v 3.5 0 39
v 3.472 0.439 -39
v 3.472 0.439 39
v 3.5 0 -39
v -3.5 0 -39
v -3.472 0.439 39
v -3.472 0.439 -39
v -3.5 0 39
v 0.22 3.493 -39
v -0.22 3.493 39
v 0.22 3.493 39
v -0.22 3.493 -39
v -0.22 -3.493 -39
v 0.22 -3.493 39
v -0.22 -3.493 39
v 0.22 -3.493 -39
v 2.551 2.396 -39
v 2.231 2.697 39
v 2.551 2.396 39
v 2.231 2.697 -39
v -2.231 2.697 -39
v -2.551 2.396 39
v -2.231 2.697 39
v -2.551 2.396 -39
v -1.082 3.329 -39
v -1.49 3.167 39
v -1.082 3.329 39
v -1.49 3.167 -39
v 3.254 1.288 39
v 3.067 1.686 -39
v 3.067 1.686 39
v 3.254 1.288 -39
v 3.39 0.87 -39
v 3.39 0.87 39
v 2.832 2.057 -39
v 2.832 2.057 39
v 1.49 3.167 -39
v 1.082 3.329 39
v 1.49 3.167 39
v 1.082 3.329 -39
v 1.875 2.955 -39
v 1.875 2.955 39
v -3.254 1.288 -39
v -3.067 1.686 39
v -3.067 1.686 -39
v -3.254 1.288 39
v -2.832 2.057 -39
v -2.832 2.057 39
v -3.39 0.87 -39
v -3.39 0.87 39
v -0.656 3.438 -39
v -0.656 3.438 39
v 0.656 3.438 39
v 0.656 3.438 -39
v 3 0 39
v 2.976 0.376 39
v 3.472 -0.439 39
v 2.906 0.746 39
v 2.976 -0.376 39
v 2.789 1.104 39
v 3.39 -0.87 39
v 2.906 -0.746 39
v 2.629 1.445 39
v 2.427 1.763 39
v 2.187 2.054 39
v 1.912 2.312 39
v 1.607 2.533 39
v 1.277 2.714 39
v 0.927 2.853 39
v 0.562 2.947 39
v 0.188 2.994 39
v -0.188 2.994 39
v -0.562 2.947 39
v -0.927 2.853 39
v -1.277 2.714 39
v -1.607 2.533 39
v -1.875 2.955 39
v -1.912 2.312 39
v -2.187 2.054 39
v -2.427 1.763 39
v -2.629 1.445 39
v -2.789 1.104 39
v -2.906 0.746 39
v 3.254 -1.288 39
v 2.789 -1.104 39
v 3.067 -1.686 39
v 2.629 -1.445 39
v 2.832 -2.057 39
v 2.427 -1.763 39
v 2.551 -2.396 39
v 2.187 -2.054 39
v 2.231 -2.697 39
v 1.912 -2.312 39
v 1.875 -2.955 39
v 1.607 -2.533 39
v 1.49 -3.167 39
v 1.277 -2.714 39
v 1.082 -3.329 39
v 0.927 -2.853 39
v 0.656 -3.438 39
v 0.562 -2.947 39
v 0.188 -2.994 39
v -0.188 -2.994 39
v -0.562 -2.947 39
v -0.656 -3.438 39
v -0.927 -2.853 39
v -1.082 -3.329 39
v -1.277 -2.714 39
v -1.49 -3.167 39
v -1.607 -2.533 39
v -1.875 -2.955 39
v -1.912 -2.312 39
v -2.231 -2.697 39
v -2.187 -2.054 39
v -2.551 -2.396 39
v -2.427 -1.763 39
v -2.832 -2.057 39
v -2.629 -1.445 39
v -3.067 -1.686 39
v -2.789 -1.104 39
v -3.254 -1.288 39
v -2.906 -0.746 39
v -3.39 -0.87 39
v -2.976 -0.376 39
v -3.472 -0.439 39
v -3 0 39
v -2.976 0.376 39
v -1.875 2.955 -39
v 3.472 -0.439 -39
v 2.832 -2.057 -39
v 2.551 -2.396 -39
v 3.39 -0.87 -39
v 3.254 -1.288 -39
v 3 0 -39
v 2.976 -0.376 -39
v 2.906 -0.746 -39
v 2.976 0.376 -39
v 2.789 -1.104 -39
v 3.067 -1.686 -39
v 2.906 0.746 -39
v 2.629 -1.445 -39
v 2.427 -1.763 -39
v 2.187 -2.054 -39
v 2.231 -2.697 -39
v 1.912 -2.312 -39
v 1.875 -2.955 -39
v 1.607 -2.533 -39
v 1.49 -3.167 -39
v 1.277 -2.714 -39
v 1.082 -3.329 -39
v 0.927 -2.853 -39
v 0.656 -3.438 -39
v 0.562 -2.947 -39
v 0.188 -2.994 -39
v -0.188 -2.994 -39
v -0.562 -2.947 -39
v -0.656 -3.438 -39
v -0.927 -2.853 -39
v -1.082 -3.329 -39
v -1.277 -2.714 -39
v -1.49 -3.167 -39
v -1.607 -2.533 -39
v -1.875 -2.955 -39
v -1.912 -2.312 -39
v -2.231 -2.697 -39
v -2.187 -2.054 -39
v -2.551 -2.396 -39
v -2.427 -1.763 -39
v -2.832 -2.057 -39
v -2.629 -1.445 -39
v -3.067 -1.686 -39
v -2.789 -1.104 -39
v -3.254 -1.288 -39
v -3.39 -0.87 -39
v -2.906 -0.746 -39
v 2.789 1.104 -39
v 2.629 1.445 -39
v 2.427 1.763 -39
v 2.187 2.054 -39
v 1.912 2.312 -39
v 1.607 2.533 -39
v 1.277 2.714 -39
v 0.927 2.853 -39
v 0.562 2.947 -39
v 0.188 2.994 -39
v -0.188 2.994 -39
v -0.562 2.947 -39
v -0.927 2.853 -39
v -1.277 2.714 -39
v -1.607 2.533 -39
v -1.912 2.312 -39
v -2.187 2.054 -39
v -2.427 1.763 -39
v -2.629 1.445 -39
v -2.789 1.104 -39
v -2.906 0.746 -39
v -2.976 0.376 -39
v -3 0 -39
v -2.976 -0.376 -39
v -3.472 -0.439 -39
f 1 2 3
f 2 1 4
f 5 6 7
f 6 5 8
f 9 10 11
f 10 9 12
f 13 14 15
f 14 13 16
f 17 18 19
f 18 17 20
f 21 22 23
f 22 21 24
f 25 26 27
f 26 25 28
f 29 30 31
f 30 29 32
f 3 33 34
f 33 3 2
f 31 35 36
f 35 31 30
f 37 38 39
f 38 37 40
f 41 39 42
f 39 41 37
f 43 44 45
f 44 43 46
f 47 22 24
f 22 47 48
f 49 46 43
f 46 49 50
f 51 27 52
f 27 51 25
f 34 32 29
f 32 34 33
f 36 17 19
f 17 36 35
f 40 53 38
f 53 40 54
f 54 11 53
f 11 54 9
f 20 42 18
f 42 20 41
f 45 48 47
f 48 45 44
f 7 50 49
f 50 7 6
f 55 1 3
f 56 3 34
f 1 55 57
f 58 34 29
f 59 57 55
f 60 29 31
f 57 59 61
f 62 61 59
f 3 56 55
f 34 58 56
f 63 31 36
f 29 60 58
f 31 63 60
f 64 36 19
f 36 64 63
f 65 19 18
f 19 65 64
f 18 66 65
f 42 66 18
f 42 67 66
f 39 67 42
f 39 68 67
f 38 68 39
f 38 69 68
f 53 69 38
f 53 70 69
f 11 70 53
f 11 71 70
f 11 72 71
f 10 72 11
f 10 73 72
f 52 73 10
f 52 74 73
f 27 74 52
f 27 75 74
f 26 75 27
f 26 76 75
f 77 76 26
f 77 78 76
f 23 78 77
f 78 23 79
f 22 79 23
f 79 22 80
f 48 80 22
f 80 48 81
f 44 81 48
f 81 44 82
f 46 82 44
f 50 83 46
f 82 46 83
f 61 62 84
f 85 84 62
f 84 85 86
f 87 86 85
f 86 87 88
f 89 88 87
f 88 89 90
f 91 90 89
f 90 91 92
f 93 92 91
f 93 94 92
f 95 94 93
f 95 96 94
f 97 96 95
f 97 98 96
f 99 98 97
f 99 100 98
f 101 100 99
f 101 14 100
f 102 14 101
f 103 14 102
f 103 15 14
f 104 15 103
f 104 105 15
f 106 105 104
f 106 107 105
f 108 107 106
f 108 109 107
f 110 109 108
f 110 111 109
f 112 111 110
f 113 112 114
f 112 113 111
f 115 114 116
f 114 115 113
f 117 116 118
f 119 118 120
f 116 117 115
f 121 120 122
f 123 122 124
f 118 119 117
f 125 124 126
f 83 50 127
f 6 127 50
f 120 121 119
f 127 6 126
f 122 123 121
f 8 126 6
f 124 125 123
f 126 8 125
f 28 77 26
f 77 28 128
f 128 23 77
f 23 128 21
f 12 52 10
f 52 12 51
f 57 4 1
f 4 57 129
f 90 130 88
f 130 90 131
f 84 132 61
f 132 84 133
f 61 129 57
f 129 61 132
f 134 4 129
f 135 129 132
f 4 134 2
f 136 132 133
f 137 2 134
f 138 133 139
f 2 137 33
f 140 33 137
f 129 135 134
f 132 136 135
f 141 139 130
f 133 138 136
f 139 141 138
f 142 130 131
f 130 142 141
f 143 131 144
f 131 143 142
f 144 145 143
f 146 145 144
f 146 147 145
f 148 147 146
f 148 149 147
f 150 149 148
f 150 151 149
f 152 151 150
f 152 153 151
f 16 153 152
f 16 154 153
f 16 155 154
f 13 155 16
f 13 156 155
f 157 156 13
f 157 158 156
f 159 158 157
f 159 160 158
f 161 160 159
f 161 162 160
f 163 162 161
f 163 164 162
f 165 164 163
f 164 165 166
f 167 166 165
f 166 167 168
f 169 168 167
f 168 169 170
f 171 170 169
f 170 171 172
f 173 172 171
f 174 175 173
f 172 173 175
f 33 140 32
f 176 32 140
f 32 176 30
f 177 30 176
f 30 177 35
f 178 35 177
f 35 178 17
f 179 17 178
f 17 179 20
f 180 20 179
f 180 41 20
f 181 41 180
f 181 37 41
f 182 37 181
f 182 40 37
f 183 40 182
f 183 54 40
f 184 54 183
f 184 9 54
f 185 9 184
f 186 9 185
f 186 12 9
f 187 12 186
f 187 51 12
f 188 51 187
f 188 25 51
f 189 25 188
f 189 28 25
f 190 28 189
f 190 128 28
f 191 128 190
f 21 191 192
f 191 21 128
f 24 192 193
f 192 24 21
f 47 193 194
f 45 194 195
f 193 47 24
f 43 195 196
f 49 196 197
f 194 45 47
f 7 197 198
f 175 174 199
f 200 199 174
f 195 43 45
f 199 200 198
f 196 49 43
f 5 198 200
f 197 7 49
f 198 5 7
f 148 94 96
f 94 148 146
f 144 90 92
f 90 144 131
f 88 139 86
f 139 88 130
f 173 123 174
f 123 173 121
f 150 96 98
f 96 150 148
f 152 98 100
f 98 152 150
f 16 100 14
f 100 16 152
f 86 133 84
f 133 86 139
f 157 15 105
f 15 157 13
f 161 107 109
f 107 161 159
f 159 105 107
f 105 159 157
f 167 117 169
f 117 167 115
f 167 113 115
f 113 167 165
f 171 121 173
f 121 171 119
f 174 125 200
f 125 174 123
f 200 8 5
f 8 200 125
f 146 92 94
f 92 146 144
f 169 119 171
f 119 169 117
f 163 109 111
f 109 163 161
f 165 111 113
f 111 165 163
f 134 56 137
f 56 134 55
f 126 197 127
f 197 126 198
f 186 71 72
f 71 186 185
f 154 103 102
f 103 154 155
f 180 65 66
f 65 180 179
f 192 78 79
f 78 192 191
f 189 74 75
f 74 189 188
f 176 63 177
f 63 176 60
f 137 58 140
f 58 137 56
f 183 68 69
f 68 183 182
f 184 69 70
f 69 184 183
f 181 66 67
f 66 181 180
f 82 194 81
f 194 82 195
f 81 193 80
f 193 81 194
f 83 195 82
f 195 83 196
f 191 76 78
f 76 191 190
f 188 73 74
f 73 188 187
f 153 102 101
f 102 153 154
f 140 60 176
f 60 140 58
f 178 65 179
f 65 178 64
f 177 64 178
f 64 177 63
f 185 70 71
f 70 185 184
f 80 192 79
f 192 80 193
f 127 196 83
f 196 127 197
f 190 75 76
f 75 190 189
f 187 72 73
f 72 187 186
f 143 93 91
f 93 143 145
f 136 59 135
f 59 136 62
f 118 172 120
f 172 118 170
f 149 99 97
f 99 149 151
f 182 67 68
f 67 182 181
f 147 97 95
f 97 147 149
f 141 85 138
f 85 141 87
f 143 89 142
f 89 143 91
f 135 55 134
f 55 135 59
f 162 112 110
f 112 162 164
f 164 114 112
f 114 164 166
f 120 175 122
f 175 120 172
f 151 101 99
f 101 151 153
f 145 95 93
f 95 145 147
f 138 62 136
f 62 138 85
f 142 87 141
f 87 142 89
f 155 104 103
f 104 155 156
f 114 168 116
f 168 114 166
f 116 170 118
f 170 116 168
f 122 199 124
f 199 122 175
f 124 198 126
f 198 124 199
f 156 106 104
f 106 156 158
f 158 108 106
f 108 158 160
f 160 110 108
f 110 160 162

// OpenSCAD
$fn = 50;


difference() {
	union() {
		translate(v = [0, 0, -39.0000000000]) {
			cylinder(h = 78, r = 3.5000000000);
		}
	}
	union() {
		translate(v = [0, 0, -100.0000000000]) {
			cylinder(h = 200, r = 3);
		}
	}
}
